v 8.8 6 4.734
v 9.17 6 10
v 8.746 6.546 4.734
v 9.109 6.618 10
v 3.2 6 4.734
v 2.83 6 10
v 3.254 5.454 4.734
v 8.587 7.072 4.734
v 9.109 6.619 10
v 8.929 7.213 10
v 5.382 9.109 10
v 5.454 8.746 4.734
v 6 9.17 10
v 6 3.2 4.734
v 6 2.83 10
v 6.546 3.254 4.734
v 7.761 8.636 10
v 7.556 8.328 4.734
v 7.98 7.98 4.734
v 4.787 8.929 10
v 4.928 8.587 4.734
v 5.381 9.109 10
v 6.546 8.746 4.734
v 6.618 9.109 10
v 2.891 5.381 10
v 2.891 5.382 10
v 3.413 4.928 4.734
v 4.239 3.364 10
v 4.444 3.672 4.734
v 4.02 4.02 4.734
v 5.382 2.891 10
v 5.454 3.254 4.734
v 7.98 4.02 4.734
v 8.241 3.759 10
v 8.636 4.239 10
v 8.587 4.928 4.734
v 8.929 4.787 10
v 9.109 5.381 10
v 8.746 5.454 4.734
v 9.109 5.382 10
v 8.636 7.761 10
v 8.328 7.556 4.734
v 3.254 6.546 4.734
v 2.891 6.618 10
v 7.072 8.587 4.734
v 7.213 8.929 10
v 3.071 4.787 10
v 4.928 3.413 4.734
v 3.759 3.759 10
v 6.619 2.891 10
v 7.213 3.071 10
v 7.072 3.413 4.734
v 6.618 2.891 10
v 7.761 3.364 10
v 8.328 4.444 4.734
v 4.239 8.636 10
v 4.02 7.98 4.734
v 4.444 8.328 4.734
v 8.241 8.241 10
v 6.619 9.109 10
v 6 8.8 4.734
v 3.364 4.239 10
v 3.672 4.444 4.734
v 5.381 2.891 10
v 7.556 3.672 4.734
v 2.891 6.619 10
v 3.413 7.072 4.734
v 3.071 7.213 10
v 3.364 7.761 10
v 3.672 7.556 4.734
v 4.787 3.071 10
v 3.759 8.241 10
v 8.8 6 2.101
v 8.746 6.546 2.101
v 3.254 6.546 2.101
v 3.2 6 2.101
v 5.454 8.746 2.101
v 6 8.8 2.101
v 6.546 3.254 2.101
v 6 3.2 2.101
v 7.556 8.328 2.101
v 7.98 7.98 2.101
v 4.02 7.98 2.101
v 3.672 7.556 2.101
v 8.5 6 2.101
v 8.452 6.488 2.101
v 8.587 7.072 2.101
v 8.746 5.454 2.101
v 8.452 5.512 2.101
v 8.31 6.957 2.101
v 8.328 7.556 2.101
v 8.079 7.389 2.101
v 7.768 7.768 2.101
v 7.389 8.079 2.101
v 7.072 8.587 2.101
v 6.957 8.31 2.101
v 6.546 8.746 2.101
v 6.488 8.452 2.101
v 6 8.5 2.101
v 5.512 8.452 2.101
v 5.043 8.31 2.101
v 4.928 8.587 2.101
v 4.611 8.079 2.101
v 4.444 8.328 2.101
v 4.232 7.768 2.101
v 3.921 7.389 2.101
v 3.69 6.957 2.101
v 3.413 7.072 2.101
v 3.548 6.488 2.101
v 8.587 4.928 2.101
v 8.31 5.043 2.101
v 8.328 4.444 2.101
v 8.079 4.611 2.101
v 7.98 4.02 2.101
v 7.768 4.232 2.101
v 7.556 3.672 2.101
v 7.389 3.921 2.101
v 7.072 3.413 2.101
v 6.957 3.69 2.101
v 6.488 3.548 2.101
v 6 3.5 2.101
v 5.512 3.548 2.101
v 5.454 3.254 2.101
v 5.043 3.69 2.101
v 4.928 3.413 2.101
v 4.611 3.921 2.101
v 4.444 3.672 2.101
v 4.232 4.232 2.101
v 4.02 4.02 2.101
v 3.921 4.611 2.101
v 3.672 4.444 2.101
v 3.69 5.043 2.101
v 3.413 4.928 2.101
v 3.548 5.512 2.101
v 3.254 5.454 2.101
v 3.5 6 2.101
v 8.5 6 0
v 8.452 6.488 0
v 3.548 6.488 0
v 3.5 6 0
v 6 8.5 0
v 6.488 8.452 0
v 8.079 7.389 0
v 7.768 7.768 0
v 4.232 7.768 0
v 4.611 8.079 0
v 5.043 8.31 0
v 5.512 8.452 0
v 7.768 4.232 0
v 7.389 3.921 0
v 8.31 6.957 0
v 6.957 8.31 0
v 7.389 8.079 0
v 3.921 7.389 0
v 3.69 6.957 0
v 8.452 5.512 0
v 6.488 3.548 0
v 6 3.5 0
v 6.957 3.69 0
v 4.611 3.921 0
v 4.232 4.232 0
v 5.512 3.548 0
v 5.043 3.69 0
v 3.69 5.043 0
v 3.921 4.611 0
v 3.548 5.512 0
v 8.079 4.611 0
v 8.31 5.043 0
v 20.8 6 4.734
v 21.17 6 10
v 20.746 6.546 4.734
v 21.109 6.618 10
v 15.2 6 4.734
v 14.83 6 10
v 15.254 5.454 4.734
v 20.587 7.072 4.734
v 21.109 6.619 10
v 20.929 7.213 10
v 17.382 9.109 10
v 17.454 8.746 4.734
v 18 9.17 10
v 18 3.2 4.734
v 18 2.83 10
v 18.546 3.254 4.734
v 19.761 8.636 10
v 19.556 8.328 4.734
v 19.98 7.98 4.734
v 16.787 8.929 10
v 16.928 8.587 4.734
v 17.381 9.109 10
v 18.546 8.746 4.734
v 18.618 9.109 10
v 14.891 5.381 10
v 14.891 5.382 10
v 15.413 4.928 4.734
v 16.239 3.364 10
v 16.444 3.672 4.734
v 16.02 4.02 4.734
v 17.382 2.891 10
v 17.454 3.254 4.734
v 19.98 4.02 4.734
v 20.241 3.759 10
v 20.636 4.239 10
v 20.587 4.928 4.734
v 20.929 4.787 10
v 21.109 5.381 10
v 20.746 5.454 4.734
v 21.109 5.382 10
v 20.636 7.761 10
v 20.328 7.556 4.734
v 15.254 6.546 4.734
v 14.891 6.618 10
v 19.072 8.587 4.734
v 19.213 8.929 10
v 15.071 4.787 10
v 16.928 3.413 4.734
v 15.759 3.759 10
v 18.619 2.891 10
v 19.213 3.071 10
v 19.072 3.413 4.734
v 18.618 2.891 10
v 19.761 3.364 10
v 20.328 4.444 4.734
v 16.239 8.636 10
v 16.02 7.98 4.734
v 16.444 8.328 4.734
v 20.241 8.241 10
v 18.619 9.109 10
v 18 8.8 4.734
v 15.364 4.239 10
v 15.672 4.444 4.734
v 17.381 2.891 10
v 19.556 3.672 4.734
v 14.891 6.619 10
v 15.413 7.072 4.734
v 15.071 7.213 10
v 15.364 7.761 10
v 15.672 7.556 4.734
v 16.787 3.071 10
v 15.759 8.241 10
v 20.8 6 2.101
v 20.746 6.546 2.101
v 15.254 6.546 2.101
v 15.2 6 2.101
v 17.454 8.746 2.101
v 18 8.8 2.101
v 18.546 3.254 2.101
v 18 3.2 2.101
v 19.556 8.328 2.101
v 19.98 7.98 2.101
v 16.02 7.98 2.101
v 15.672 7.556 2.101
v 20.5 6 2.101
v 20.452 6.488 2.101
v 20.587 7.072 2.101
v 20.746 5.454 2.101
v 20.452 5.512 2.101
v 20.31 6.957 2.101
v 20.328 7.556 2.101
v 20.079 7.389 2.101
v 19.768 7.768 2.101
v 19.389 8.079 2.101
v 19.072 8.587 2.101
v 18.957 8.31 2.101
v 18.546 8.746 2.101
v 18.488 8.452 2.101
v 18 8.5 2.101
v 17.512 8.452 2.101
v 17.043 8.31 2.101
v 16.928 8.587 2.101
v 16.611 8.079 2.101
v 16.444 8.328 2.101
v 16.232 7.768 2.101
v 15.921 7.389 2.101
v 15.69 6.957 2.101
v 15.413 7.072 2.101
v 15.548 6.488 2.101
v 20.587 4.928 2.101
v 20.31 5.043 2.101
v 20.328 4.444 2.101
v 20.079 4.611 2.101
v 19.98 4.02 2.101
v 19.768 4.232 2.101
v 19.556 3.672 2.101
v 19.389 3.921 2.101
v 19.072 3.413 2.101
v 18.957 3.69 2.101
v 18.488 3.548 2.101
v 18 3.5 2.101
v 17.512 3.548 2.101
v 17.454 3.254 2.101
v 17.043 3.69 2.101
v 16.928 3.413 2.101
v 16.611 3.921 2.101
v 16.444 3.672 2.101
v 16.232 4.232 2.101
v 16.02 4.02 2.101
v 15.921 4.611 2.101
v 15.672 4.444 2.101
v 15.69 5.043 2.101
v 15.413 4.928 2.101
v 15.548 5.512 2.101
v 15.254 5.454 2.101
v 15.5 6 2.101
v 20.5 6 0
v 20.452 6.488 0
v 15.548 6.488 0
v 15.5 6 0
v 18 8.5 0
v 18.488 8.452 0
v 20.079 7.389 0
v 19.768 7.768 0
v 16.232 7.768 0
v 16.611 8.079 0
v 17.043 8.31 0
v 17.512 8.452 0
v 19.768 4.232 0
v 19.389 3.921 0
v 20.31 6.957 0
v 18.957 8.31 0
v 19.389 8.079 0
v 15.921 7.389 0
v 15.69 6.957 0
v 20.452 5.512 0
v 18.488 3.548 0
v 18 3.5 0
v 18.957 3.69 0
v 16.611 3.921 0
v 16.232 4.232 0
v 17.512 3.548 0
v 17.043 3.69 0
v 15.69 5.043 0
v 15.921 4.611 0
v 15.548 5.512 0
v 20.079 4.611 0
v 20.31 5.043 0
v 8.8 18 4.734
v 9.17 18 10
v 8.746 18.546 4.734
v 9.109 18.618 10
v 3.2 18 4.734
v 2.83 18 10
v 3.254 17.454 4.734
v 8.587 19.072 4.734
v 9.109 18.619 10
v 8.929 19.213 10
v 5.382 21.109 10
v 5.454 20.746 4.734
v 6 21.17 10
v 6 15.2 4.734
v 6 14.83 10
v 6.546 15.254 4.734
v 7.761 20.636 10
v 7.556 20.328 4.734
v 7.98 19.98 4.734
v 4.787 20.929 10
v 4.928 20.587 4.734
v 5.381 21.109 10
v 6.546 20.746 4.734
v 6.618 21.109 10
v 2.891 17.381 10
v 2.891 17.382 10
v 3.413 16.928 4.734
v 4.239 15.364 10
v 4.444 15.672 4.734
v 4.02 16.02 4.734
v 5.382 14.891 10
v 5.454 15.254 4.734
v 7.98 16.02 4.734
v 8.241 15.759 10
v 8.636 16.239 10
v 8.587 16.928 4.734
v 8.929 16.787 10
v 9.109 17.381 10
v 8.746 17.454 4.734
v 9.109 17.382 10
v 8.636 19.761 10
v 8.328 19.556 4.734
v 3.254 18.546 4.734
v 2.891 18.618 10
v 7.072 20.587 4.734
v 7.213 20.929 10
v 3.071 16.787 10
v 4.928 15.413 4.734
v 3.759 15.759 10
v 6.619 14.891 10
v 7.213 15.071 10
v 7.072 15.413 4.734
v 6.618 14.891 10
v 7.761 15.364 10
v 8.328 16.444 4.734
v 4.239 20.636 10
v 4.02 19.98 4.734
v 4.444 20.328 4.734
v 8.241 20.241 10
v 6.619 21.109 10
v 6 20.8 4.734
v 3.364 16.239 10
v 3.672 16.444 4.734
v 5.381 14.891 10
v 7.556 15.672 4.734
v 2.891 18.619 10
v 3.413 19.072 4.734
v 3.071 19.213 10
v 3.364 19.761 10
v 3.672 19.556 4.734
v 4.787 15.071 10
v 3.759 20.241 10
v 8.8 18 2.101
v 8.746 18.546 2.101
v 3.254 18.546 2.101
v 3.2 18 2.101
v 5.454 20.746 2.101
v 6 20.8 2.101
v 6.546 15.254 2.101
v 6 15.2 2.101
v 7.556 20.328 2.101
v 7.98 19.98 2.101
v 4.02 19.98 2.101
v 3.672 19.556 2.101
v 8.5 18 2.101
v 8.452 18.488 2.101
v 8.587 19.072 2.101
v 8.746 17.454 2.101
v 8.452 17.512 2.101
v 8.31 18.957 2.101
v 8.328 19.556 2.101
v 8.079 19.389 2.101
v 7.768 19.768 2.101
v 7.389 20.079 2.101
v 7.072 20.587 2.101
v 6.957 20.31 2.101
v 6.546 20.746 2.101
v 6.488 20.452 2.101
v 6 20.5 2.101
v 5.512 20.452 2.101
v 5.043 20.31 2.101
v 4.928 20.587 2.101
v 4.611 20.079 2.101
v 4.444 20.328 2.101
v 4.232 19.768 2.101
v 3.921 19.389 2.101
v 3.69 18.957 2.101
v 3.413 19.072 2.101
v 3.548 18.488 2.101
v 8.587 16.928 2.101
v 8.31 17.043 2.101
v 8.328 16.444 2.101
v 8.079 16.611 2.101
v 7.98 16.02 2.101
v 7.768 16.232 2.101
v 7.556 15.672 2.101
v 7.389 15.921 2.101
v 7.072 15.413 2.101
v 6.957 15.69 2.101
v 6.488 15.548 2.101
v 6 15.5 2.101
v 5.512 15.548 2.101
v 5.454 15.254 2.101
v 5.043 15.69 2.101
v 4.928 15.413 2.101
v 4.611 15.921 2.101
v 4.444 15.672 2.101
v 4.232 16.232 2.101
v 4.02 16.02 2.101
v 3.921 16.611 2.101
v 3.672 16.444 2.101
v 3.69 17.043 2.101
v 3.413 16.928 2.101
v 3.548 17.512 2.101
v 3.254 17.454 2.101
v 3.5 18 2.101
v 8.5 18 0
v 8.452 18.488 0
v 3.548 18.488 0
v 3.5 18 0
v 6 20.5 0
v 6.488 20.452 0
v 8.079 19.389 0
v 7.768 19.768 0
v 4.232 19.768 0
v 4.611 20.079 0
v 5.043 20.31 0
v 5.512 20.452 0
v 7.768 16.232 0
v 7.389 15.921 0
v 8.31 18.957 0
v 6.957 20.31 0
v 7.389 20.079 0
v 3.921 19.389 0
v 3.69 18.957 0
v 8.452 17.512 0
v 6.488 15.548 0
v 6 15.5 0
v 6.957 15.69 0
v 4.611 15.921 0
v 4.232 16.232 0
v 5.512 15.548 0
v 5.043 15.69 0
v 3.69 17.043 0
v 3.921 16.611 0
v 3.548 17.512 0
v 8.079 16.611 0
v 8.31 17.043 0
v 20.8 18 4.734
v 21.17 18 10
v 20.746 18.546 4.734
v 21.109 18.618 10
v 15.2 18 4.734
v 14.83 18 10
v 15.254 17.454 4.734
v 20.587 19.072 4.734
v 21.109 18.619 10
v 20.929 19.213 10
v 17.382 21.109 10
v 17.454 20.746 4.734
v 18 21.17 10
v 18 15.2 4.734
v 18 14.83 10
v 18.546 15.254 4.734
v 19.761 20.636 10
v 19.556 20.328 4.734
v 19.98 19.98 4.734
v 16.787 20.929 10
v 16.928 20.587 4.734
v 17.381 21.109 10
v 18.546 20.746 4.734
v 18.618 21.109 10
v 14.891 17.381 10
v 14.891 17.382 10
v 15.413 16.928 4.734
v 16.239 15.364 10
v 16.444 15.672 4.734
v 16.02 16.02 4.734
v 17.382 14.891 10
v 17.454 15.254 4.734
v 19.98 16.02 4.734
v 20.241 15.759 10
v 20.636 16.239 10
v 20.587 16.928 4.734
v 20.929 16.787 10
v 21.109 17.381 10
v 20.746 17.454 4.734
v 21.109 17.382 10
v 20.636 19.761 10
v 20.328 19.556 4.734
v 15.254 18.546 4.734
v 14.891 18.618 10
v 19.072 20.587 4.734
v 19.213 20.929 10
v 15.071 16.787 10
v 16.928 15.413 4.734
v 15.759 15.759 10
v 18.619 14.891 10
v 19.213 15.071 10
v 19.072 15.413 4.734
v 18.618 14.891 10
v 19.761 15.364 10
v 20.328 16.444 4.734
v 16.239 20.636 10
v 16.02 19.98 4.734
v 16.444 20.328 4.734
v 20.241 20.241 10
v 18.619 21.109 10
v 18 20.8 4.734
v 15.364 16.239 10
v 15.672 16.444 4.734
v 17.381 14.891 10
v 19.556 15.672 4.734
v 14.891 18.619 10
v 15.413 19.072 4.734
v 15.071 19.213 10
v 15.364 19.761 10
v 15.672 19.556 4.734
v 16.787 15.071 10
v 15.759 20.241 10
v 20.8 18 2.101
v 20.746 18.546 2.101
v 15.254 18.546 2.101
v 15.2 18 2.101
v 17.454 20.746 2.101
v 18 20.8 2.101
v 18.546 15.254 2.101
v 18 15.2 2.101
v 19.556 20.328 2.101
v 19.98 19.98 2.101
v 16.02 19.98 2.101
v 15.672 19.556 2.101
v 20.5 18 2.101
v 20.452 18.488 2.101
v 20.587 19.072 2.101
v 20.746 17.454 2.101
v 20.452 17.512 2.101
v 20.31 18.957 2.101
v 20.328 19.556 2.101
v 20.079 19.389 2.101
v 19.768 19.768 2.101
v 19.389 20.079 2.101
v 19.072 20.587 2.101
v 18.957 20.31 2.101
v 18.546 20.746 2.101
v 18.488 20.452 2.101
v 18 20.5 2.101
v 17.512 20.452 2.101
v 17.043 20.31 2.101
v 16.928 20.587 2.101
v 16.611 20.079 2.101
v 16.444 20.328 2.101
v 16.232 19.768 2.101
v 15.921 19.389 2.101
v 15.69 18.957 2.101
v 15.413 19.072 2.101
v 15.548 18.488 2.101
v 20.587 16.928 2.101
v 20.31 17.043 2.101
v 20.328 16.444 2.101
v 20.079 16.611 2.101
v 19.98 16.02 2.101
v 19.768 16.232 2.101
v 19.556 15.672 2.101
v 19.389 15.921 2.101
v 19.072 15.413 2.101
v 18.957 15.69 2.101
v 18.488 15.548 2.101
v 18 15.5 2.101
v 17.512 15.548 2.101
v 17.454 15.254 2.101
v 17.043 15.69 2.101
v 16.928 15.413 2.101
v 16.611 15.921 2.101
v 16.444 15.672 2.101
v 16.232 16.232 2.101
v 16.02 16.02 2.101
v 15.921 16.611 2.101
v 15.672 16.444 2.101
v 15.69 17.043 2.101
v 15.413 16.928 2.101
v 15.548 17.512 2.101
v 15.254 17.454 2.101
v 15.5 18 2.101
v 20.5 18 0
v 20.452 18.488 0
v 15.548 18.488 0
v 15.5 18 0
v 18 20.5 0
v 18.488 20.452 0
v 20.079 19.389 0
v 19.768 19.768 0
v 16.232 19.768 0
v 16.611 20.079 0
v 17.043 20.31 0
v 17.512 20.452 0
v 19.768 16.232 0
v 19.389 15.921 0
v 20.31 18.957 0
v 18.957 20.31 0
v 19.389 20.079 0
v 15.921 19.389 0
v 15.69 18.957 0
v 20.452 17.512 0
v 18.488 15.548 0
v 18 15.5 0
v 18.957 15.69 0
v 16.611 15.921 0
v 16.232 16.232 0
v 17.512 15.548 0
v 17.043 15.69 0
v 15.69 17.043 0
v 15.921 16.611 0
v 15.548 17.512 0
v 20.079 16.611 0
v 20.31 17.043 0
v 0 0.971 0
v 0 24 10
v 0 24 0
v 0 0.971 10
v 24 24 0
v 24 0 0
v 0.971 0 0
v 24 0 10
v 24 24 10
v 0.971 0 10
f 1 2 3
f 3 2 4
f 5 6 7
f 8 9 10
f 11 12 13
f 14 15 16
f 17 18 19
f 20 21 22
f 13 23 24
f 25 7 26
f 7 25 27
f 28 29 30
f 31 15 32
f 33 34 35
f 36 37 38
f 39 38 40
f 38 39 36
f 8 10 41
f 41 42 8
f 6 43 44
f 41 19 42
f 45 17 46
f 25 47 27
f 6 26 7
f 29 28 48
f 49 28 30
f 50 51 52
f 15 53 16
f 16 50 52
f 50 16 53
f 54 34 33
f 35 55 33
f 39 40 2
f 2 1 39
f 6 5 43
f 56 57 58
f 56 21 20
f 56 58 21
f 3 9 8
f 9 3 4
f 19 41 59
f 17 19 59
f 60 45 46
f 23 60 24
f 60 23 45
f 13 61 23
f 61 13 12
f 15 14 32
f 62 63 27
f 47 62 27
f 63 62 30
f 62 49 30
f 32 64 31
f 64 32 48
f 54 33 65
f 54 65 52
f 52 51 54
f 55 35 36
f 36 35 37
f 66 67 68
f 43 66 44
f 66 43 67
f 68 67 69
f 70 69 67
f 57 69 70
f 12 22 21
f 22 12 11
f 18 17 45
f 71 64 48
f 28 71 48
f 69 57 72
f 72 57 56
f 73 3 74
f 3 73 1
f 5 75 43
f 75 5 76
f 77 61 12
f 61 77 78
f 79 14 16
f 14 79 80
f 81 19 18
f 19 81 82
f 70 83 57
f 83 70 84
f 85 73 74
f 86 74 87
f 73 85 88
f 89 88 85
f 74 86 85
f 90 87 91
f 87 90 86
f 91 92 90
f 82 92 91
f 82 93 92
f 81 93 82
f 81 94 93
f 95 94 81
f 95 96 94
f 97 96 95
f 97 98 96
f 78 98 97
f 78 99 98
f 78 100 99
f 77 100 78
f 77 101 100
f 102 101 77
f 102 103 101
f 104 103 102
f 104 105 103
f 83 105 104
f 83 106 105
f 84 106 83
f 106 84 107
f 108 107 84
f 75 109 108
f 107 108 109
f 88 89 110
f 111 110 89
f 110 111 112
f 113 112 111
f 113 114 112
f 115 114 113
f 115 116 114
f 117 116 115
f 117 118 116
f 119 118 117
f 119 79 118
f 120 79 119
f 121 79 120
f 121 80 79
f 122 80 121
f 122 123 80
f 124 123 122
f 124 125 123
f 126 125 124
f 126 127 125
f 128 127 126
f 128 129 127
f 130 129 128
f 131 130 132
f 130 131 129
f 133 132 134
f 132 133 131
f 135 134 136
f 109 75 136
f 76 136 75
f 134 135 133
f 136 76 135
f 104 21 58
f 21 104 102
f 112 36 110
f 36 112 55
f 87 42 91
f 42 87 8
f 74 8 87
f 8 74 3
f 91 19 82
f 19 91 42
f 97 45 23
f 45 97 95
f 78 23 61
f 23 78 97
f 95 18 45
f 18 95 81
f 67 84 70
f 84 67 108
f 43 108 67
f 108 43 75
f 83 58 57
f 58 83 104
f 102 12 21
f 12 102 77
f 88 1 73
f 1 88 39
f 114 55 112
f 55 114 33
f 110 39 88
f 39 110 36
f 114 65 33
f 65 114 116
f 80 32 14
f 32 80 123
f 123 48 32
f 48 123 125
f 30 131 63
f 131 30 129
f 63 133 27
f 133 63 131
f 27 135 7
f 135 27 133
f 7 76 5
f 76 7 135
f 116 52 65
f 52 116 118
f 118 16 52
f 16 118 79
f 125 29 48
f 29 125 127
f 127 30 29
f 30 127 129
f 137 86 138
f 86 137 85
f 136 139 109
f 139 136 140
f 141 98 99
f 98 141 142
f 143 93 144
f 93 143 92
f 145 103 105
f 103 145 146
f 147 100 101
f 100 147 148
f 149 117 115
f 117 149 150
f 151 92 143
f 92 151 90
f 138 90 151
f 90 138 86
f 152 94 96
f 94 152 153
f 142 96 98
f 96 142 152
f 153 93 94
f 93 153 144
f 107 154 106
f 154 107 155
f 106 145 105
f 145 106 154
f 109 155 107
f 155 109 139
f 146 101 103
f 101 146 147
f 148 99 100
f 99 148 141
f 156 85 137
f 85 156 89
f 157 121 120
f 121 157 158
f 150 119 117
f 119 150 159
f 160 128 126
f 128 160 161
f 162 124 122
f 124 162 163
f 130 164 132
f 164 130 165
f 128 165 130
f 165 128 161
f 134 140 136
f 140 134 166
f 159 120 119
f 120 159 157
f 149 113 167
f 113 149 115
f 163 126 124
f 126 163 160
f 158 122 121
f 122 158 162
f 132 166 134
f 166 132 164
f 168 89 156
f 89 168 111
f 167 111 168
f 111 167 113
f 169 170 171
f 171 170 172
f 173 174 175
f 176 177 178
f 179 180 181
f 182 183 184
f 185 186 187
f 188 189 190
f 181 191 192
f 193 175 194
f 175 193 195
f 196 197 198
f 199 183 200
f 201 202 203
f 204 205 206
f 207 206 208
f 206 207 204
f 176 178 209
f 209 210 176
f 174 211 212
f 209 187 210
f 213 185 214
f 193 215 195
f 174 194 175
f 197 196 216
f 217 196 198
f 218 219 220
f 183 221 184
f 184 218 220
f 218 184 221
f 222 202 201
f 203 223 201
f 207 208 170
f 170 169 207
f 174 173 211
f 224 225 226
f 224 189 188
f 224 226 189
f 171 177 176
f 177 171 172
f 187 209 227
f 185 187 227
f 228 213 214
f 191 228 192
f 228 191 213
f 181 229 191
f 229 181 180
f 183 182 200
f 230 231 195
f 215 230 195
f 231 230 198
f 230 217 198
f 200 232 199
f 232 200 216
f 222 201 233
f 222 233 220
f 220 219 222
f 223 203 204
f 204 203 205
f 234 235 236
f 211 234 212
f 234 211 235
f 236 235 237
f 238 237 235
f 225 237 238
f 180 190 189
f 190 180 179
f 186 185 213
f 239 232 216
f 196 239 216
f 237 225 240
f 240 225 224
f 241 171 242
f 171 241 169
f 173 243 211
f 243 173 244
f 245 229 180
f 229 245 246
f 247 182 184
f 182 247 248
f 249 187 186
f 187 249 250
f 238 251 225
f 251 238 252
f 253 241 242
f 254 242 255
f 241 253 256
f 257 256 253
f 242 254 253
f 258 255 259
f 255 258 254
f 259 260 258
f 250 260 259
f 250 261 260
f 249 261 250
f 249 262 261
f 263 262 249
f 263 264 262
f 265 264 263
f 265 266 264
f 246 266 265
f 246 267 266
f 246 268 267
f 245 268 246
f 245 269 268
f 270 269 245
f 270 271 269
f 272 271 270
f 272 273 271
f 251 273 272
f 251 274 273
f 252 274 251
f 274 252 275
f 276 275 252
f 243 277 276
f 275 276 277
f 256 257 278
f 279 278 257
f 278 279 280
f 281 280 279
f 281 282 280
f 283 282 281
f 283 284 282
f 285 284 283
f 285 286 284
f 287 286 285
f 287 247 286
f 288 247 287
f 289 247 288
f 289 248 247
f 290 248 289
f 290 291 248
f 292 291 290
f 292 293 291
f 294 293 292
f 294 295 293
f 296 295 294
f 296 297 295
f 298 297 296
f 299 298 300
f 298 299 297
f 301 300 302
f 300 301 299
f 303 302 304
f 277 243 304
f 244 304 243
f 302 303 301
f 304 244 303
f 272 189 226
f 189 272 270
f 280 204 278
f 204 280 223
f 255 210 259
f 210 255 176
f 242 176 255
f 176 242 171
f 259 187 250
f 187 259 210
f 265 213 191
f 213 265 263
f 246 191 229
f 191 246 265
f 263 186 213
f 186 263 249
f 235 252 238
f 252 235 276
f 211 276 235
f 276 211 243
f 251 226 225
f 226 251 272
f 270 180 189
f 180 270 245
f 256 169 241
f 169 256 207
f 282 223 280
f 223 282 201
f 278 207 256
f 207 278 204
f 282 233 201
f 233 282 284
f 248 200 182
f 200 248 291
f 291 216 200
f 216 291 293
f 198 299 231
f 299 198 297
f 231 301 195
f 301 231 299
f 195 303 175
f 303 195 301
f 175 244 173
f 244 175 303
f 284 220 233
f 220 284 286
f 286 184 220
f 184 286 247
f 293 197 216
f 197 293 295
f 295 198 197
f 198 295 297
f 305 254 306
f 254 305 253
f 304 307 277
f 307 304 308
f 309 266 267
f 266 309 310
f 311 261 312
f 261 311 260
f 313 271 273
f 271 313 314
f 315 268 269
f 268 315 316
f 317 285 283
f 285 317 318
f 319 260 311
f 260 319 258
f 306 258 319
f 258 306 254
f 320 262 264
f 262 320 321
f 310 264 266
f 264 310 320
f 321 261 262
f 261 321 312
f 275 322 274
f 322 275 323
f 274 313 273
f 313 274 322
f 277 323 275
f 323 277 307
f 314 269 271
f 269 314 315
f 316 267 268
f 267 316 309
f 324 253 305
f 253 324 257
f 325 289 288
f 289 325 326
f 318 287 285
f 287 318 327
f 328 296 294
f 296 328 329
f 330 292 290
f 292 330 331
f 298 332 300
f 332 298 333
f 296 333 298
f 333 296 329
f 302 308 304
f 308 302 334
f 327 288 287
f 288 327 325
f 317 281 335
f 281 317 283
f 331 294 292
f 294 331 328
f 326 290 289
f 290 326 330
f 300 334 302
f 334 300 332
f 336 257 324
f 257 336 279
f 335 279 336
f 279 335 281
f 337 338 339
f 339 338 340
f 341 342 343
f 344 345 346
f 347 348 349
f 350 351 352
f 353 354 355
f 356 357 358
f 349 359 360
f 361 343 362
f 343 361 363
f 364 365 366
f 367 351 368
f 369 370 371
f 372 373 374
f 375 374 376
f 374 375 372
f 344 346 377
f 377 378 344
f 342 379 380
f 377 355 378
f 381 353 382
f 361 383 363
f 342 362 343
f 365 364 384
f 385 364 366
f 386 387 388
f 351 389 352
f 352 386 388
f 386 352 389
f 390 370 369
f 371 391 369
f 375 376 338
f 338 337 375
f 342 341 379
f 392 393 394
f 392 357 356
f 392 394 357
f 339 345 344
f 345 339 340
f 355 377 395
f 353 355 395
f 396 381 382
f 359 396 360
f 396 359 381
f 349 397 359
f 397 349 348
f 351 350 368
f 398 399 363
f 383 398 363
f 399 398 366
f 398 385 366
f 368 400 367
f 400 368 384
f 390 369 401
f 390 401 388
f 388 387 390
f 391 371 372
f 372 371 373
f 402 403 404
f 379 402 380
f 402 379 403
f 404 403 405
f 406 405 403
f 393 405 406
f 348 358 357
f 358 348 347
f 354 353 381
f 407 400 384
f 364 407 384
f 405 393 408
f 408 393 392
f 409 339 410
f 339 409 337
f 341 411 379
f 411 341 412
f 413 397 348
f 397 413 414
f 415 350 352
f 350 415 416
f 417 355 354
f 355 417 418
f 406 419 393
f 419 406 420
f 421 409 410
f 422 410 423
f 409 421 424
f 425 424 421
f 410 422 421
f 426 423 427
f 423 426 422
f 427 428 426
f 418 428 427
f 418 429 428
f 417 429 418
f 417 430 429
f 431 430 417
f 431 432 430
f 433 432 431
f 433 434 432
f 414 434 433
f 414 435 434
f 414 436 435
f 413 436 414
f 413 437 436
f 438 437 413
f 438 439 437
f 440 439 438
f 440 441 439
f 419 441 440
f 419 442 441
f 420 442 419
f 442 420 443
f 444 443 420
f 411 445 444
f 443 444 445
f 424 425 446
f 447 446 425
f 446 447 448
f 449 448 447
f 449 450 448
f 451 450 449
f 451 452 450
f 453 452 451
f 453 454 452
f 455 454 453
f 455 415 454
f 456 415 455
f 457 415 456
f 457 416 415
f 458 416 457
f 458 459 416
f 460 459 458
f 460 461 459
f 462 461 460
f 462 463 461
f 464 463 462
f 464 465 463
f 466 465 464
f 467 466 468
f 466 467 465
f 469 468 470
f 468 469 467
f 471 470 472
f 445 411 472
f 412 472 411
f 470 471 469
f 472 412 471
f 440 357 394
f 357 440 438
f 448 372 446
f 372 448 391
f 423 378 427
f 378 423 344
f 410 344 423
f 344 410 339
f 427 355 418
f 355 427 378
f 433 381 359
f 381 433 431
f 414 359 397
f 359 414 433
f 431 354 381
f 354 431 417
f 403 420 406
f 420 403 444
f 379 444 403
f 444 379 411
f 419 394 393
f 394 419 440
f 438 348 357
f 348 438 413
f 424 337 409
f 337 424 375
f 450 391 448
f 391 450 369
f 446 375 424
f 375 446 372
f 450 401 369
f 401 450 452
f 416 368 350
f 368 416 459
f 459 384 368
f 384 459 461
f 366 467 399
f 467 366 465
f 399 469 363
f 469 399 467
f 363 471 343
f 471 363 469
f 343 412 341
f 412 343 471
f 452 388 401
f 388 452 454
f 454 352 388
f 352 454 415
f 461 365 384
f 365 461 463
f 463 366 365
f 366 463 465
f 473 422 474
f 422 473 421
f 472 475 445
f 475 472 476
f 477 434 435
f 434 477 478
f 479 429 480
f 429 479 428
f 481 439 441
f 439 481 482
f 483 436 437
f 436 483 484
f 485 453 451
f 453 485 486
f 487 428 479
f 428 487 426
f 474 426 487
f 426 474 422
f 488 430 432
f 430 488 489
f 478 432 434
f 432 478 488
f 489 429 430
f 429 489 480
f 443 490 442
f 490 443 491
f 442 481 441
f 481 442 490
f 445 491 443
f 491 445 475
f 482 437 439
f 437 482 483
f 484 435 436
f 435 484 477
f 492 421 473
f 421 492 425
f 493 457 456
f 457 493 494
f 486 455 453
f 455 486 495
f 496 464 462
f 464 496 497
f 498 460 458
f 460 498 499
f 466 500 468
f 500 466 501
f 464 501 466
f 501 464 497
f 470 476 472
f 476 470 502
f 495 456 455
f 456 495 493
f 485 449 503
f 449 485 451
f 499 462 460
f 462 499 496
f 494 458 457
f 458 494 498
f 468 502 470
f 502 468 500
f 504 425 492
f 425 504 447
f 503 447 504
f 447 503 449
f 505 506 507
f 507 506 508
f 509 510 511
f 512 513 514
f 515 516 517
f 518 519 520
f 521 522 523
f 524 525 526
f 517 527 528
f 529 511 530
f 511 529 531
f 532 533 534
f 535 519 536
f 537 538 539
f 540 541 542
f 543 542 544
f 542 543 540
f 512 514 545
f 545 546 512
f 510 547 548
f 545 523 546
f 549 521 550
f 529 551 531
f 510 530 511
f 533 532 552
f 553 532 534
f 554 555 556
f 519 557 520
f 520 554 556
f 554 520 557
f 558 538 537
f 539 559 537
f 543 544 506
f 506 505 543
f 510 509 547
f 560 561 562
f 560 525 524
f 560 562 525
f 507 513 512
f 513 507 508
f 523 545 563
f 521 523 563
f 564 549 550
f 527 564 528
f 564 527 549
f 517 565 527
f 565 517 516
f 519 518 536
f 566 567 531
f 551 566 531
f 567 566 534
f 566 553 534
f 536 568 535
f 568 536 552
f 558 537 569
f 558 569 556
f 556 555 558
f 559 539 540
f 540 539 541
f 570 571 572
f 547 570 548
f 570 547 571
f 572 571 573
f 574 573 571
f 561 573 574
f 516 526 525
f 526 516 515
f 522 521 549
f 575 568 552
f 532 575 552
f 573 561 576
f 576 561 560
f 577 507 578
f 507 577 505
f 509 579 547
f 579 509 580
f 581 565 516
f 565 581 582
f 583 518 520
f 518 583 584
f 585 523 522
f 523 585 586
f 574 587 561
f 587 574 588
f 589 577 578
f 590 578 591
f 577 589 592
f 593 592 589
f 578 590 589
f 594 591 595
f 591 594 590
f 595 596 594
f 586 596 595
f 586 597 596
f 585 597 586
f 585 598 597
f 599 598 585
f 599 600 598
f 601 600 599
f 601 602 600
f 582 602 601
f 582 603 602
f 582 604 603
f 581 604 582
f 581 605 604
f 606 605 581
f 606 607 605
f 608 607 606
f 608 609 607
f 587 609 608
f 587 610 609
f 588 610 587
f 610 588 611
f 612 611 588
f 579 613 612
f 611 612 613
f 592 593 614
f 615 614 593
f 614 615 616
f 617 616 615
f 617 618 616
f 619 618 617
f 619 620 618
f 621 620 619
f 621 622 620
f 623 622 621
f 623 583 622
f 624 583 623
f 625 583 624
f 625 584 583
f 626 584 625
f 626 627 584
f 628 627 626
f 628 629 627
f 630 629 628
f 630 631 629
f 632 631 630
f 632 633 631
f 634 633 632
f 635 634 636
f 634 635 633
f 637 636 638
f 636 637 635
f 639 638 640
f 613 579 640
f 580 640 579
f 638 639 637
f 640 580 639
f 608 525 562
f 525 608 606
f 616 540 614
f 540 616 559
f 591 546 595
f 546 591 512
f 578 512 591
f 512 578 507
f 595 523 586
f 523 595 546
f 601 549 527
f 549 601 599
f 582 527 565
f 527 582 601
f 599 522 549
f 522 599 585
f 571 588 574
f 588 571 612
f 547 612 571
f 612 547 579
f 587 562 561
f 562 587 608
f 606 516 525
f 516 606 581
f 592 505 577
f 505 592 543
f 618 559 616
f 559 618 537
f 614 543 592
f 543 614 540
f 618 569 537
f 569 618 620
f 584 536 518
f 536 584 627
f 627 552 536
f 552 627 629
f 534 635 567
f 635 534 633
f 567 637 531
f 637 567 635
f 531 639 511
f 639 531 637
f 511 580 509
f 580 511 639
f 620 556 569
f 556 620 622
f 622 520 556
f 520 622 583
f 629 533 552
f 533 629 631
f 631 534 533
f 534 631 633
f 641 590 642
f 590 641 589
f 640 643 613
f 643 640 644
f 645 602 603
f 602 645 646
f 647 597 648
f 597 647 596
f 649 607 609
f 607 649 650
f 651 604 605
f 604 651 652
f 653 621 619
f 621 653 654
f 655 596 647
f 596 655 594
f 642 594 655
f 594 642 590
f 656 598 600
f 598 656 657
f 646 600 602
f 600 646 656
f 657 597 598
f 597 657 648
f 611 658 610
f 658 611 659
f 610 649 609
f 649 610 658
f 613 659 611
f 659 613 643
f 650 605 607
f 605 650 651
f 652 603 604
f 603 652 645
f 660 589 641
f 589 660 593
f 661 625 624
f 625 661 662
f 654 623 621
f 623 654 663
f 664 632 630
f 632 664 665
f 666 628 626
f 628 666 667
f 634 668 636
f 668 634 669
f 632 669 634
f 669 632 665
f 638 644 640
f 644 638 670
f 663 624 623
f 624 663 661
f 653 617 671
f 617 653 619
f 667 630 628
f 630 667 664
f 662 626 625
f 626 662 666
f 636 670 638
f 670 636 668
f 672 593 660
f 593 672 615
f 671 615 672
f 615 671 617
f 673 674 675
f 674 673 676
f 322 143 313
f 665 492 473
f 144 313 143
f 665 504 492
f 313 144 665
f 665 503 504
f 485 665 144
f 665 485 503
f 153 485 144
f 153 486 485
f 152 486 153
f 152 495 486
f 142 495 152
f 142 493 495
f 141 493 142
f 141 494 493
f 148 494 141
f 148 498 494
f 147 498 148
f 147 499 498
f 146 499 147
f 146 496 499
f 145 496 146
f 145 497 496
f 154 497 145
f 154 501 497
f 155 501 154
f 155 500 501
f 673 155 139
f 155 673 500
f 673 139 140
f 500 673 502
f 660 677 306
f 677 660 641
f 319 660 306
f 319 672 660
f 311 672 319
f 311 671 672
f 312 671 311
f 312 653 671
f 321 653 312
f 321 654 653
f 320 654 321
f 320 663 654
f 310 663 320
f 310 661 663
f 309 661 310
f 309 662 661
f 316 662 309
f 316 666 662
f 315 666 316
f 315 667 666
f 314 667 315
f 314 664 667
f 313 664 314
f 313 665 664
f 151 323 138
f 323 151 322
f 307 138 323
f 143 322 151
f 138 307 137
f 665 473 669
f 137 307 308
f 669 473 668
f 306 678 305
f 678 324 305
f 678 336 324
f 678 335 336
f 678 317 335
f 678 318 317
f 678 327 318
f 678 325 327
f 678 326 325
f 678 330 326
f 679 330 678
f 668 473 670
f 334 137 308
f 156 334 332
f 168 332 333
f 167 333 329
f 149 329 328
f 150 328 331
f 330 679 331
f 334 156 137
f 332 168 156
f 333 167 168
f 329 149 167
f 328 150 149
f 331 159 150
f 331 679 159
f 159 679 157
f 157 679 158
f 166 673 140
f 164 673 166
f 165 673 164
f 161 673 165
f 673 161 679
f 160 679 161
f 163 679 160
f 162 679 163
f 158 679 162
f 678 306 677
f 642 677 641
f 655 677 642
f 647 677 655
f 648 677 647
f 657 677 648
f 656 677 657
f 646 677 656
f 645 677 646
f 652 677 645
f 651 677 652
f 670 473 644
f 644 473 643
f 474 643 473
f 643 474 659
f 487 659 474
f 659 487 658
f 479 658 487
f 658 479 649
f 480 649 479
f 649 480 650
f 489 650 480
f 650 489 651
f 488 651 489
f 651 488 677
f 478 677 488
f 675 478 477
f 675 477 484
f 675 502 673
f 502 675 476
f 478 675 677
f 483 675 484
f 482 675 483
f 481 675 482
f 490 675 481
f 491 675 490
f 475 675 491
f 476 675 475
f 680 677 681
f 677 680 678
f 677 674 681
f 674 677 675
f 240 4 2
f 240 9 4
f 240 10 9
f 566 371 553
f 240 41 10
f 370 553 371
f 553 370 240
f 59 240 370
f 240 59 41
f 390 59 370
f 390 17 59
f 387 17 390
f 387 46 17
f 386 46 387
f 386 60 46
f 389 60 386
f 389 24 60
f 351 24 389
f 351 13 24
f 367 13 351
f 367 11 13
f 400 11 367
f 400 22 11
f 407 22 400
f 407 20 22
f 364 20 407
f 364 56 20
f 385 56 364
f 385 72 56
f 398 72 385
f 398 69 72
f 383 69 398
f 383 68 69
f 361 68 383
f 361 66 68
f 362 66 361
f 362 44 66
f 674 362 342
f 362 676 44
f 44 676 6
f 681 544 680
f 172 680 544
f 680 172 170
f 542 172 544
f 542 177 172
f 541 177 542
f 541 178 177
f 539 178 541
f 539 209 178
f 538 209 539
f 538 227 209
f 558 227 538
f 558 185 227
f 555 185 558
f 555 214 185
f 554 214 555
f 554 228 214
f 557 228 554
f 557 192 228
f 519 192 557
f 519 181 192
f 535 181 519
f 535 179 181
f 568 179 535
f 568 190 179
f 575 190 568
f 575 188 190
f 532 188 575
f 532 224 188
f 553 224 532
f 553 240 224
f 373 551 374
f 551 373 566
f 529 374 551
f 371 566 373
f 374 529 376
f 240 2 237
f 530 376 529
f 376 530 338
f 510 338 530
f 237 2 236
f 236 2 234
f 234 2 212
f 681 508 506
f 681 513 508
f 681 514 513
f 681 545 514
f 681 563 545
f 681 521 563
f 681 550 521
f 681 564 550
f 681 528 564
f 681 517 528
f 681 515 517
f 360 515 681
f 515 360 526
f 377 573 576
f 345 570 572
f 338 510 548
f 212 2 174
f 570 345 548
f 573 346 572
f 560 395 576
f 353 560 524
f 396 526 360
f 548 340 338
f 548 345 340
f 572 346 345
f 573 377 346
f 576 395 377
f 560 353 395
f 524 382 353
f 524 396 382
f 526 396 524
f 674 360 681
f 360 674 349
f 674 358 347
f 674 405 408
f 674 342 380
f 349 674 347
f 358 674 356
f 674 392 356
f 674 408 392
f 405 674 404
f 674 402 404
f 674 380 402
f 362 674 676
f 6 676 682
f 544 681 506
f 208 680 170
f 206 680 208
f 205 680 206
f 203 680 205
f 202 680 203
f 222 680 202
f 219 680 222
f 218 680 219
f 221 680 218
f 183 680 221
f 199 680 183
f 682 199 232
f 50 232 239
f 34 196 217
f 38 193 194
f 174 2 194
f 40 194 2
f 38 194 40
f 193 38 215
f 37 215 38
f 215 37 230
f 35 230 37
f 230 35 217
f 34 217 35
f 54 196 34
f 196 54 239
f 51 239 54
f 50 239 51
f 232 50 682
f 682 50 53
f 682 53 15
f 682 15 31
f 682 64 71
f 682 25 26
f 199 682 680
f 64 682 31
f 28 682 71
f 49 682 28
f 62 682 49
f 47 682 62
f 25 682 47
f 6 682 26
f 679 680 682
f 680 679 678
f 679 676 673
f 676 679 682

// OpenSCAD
// file: m4_threaded_insert.scad
// Choice of M4 threaded insert. Uncomment one and only one.

// A = bottom diameter of threaded insert
// B = top diameter of threaded insert
// L = height of threaded insert
// D = diameter of hole after threaded insert
//

// M4 threaded insert, Mc Master-Carr part number 94180A353
// Tapered Heat-Set Inserts for Plastic, 
// Brass, M4 x 0.70 mm Thread Size, 7.900 mm Installed Length
// https://www.mcmaster.com/94180a353

  // Adding tweaks for compensate for my printer's tolerace.
  A = 5.3 + 0.3;
  B = 5.94 + 0.4;
  L = 7.9;
  D = 5.0;

// M4 threaded insert, Aerzetix C19143, Amazon ASIN B075XHV3GH
// Aerzetix Set of 10 Brass Inserts For Duroplast M4 Thread 7.4 mm C19143
// https://www.amazon.co.uk/dp/B075XHV3GH/

  // Adding tweaks for compensate for my printer's tolerace.
//  A = 5.3 + 0.3;
//  B = 5.8 + 0.4;
//  L = 7.4;
//  D = 5.0;

// not truncated
// main file
// Test part for practicing threaded inserts insertion using a 
// solder iron..

$fn=32;

h1=8;
h2=10;
w=24;

eps1 = 0.001;
eps2 = 2*eps1;

// Hole for a M4 metal insert, mcmaster part number 94180A353.
// h is the total depth for the screw hole. Already includes an 
// extra eps1 at the opening side.
module m4_threaded_insert(h) {
  include <m4_threaded_insert.scad>;
  translate([0, 0, -eps1]) {
    // NOTE: diameter are compensated to actual print results.
    // May vary among printers.
    cylinder(d1=B, d2=A, h=eps1+L*2/3, $f2=32);
    cylinder(d=A, h=eps1+L, $f2=32);
    translate([0, 0, L-eps1]) cylinder(d=D, h=h+eps1-L, $f2=32);
  }
}

module m4_inserts() {
    translate([6, 6, -eps1]) m4_threaded_insert(h2+2*eps2);
    translate([18, 6, -eps1]) m4_threaded_insert(h2+2*eps2);
    translate([6, 18, -eps1]) m4_threaded_insert(h2+2*eps2);
    translate([18, 18, -eps1]) m4_threaded_insert(h2+2*eps2);
}

module main() {
  difference() {
    cube([w, w, h2]);
    m4_inserts();
      
    translate([-8, -8, 0])
    rotate([0, 0, 45])
    cube([w, w, w], center=true);
  }
}

translate([0, 0, h2]) mirror ([0, 0, 1]) main();
// not truncated
